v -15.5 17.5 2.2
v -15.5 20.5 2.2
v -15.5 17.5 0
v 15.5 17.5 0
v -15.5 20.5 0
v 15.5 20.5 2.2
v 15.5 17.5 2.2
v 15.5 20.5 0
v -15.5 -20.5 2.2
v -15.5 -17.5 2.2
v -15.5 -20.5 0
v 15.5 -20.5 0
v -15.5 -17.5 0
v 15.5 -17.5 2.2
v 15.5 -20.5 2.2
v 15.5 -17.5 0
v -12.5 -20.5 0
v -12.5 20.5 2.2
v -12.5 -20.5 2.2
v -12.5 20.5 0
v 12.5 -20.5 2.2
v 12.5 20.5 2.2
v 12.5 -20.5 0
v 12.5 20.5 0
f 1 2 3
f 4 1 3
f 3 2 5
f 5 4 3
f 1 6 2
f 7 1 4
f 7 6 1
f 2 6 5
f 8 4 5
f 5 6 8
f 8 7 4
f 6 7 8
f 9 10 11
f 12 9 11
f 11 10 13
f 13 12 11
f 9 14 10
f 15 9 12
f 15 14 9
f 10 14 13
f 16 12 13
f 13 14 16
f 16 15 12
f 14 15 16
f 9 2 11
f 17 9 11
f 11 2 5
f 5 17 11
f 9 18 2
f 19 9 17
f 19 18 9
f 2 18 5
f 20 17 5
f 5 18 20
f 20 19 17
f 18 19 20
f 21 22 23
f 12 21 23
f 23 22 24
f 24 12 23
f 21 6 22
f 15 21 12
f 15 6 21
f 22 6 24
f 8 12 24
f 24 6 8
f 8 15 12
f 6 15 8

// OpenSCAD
/*
Yamper V11 mesh source for yamper_v11_3525_speaker_retainer.stl
Units: millimeters

This source keeps the restored V11 STL geometry as a plain OpenSCAD polyhedron.
It is not a new redesign. It exists so the CAD source, STL, and STEP exports stay together.
*/

module yamper_v11_3525_speaker_retainer() {
    pts = [
        [-15.5, 17.5, 2.2],
        [-15.5, 20.5, 2.2],
        [-15.5, 17.5, 0],
        [15.5, 17.5, 0],
        [-15.5, 20.5, 0],
        [15.5, 20.5, 2.2],
        [15.5, 17.5, 2.2],
        [15.5, 20.5, 0],
        [-15.5, -20.5, 2.2],
        [-15.5, -17.5, 2.2],
        [-15.5, -20.5, 0],
        [15.5, -20.5, 0],
        [-15.5, -17.5, 0],
        [15.5, -17.5, 2.2],
        [15.5, -20.5, 2.2],
        [15.5, -17.5, 0],
        [-12.5, -20.5, 0],
        [-12.5, 20.5, 2.2],
        [-12.5, -20.5, 2.2],
        [-12.5, 20.5, 0],
        [12.5, -20.5, 2.2],
        [12.5, 20.5, 2.2],
        [12.5, -20.5, 0],
        [12.5, 20.5, 0],
    ];

    tris = [
        [0, 1, 2],
        [3, 0, 2],
        [2, 1, 4],
        [4, 3, 2],
        [0, 5, 1],
        [6, 0, 3],
        [6, 5, 0],
        [1, 5, 4],
        [7, 3, 4],
        [4, 5, 7],
        [7, 6, 3],
        [5, 6, 7],
        [8, 9, 10],
        [11, 8, 10],
        [10, 9, 12],
        [12, 11, 10],
        [8, 13, 9],
        [14, 8, 11],
        [14, 13, 8],
        [9, 13, 12],
        [15, 11, 12],
        [12, 13, 15],
        [15, 14, 11],
        [13, 14, 15],
        [8, 1, 10],
        [16, 8, 10],
        [10, 1, 4],
        [4, 16, 10],
        [8, 17, 1],
        [18, 8, 16],
        [18, 17, 8],
        [1, 17, 4],
        [19, 16, 4],
        [4, 17, 19],
        [19, 18, 16],
        [17, 18, 19],
        [20, 21, 22],
        [11, 20, 22],
        [22, 21, 23],
        [23, 11, 22],
        [20, 5, 21],
        [14, 20, 11],
        [14, 5, 20],
        [21, 5, 23],
        [7, 11, 23],
        [23, 5, 7],
        [7, 14, 11],
        [5, 14, 7],
    ];

    polyhedron(points = pts, faces = tris, convexity = 10);
}

yamper_v11_3525_speaker_retainer();
